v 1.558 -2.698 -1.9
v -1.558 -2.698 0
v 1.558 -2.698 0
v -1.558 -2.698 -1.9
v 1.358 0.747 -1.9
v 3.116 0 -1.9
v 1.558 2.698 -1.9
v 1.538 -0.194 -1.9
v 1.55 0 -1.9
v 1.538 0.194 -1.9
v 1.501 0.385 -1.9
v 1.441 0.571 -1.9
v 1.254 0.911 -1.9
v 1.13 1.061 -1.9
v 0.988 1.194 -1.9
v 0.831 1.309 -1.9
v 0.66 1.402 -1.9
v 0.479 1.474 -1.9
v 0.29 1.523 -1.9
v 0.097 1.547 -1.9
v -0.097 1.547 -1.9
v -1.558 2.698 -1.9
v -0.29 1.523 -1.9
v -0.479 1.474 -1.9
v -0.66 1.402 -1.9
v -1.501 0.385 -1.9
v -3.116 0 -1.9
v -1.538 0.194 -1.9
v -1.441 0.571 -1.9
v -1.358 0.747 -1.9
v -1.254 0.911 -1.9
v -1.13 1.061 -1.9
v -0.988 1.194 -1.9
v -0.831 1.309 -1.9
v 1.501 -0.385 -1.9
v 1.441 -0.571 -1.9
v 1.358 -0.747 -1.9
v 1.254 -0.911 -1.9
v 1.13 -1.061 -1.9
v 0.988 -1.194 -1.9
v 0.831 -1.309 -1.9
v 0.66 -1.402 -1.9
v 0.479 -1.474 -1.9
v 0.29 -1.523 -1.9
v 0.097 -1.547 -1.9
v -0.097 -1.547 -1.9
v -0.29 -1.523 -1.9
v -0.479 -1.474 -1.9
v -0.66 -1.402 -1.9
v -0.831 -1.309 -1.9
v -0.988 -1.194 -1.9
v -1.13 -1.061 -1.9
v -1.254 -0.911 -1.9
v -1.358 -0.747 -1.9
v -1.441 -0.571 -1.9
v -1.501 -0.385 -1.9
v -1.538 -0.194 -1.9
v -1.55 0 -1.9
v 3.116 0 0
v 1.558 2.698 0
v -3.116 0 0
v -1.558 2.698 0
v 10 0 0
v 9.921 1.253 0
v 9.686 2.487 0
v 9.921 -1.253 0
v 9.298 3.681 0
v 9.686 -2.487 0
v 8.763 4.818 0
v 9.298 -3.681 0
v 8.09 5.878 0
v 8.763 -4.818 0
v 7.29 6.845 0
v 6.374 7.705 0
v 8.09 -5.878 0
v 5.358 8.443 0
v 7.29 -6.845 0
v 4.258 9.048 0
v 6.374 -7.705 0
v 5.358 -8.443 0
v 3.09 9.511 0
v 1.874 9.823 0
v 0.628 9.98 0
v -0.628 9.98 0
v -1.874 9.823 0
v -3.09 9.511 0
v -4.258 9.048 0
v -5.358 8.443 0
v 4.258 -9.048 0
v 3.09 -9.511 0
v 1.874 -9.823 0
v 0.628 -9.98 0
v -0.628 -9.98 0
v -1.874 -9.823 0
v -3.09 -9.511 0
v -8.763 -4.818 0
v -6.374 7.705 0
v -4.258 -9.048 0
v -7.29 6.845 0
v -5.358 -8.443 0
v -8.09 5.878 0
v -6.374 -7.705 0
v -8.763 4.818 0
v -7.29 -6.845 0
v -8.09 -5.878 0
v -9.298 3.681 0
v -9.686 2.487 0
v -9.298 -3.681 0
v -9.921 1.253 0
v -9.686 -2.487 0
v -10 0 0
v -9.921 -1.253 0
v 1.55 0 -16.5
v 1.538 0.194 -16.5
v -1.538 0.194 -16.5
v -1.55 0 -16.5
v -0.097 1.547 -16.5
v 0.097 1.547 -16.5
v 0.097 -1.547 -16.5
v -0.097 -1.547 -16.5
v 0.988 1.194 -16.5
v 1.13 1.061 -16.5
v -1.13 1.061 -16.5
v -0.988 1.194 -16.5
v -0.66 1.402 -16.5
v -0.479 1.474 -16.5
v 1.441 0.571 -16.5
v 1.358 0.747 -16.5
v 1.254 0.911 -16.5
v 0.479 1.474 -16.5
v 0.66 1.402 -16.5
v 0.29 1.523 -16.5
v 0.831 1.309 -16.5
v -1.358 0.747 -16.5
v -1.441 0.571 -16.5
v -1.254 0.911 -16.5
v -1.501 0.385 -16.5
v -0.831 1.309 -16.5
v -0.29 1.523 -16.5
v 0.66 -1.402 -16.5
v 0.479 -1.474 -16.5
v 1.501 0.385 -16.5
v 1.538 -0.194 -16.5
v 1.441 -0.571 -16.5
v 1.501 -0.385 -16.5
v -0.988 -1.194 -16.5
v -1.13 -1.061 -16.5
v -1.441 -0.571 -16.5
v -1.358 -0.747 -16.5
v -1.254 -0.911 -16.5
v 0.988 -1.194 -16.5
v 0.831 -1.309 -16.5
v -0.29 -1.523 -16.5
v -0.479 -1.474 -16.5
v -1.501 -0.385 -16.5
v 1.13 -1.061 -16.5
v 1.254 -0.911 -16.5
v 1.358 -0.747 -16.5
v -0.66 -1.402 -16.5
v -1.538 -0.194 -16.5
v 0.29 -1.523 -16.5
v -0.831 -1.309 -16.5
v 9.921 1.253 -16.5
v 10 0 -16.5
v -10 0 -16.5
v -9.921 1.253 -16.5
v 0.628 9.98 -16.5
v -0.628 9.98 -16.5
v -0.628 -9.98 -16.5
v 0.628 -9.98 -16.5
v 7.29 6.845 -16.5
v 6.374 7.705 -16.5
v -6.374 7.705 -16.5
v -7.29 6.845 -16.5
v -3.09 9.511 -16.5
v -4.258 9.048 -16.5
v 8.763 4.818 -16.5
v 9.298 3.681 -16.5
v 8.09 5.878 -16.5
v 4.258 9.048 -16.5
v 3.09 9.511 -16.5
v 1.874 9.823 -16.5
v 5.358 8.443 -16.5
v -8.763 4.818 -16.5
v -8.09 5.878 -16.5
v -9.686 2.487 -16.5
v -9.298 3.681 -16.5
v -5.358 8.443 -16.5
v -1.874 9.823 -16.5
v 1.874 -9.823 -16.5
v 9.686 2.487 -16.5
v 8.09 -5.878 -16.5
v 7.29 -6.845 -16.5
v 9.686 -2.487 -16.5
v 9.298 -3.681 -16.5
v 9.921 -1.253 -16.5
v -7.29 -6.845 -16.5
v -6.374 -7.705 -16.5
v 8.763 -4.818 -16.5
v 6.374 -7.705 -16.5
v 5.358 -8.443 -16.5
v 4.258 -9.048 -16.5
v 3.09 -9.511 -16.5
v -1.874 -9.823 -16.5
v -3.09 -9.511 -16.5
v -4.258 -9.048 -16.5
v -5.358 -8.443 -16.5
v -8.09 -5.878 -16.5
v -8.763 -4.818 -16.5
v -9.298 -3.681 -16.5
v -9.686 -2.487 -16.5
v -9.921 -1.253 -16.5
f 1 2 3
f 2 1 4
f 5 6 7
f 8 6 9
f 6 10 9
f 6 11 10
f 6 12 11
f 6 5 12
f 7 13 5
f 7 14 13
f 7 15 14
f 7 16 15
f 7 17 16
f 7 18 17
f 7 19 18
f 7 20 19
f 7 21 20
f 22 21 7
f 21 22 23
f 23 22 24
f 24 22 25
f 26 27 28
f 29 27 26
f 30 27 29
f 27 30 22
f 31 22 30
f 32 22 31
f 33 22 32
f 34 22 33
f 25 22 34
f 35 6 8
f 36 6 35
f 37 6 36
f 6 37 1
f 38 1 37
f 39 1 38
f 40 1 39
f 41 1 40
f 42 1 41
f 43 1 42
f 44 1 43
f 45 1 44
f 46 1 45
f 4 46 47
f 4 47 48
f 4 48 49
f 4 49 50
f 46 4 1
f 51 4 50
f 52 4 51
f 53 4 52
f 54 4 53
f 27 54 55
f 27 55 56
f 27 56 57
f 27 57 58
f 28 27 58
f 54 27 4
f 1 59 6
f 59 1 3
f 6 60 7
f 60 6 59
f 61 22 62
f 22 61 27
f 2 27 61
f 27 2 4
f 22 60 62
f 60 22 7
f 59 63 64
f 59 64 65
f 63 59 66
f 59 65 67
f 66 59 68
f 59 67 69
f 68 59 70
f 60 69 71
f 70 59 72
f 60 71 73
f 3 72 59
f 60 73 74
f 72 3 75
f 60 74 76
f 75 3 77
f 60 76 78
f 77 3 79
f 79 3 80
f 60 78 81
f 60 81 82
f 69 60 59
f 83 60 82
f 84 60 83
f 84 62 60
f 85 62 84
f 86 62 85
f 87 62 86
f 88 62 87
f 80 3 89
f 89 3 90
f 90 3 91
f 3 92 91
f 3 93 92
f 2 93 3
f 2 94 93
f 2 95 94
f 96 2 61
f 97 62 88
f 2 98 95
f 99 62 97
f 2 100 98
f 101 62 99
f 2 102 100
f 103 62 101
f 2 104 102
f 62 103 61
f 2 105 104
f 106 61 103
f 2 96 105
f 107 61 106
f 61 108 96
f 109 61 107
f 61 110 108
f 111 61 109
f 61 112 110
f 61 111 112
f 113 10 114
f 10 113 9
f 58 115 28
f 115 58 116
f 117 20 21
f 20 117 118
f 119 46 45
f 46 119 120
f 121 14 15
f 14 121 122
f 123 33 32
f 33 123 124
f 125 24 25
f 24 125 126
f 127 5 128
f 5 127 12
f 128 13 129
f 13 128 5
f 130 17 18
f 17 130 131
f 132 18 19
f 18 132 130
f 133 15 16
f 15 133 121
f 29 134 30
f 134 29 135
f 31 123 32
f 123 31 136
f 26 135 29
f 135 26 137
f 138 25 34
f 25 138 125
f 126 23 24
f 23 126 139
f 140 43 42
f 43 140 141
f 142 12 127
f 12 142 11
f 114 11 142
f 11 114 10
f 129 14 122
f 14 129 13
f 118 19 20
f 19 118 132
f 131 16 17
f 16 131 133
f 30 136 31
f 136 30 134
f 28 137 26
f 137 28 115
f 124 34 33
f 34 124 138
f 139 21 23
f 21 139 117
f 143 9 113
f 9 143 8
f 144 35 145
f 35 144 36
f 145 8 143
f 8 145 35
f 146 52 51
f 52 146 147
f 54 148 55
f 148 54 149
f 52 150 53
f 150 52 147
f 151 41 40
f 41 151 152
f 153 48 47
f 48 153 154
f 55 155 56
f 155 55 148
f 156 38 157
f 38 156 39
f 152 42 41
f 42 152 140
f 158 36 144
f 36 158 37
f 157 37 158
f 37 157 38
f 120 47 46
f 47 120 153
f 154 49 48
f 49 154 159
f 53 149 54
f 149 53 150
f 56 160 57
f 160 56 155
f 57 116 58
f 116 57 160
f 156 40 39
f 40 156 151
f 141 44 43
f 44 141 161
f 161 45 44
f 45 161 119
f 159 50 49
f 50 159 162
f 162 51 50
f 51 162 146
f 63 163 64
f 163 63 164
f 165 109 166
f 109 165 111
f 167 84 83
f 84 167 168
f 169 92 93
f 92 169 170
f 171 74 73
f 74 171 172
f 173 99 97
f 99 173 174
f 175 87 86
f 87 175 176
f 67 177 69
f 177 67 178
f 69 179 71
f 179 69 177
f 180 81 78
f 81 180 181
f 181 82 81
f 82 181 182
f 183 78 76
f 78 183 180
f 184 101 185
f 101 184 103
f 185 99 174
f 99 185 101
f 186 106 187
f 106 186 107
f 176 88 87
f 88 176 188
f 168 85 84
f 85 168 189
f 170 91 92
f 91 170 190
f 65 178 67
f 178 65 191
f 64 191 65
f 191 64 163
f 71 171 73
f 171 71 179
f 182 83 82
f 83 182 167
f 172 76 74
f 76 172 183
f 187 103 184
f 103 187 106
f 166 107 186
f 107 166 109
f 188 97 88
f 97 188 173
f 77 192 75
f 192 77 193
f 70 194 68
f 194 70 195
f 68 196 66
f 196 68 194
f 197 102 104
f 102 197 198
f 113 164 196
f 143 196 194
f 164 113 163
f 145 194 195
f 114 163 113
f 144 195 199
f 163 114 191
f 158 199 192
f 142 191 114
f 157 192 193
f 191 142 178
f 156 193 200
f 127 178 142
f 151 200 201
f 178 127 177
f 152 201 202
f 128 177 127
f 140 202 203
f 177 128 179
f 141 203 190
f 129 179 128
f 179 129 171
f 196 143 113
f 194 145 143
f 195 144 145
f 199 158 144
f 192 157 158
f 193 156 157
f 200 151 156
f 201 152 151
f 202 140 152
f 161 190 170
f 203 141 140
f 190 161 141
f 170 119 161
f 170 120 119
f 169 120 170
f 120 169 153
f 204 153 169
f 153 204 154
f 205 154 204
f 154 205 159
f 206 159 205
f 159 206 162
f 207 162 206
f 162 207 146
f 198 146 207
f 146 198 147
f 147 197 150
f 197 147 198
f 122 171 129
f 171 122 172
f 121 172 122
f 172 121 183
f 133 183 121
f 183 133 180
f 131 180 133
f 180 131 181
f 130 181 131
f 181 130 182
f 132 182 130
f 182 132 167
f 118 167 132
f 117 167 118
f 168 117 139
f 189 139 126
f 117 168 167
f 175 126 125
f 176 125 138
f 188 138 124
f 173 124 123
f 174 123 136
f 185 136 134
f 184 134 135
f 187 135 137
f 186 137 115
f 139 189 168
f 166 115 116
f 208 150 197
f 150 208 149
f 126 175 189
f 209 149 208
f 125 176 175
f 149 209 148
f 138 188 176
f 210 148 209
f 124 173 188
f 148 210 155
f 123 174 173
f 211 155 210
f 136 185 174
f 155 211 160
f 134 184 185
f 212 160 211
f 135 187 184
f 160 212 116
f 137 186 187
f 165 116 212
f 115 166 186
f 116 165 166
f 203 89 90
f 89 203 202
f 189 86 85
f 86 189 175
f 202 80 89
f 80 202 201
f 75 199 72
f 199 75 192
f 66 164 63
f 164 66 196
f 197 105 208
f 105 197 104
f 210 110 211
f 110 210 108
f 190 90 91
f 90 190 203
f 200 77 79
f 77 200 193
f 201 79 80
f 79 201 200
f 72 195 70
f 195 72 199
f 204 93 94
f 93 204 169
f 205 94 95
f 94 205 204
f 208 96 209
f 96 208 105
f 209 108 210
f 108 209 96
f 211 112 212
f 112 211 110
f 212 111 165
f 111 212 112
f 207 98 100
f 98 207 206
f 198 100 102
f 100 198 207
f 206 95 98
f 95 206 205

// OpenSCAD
$fn = 50;

difference() {
	union() {
		translate(v = [0, 0, -16.5]) {
			cylinder(h = 16.5, r = 10.0);
		}
	}
	union() {
		translate(v = [0, 0, 0]) {
			rotate(a = [0, 0, 0]) {
				difference() {
					union() {
						translate(v = [0, 0, -1.9]) {
							linear_extrude(height = 1.9) {
								polygon(points = [[3.1158, 0.0], [1.5579000000000005, 2.698361953111554], [-1.5578999999999994, 2.6983619531115544], [-3.1158, 3.815754496783323e-16], [-1.5579000000000014, -2.6983619531115535], [1.557899999999998, -2.6983619531115552]]);
							}
						}
					}
					union();
				}
			}
		}
		#translate(v = [0, 0, -100.0]) {
			cylinder(h = 200, r = 1.55);
		}
	}
}
